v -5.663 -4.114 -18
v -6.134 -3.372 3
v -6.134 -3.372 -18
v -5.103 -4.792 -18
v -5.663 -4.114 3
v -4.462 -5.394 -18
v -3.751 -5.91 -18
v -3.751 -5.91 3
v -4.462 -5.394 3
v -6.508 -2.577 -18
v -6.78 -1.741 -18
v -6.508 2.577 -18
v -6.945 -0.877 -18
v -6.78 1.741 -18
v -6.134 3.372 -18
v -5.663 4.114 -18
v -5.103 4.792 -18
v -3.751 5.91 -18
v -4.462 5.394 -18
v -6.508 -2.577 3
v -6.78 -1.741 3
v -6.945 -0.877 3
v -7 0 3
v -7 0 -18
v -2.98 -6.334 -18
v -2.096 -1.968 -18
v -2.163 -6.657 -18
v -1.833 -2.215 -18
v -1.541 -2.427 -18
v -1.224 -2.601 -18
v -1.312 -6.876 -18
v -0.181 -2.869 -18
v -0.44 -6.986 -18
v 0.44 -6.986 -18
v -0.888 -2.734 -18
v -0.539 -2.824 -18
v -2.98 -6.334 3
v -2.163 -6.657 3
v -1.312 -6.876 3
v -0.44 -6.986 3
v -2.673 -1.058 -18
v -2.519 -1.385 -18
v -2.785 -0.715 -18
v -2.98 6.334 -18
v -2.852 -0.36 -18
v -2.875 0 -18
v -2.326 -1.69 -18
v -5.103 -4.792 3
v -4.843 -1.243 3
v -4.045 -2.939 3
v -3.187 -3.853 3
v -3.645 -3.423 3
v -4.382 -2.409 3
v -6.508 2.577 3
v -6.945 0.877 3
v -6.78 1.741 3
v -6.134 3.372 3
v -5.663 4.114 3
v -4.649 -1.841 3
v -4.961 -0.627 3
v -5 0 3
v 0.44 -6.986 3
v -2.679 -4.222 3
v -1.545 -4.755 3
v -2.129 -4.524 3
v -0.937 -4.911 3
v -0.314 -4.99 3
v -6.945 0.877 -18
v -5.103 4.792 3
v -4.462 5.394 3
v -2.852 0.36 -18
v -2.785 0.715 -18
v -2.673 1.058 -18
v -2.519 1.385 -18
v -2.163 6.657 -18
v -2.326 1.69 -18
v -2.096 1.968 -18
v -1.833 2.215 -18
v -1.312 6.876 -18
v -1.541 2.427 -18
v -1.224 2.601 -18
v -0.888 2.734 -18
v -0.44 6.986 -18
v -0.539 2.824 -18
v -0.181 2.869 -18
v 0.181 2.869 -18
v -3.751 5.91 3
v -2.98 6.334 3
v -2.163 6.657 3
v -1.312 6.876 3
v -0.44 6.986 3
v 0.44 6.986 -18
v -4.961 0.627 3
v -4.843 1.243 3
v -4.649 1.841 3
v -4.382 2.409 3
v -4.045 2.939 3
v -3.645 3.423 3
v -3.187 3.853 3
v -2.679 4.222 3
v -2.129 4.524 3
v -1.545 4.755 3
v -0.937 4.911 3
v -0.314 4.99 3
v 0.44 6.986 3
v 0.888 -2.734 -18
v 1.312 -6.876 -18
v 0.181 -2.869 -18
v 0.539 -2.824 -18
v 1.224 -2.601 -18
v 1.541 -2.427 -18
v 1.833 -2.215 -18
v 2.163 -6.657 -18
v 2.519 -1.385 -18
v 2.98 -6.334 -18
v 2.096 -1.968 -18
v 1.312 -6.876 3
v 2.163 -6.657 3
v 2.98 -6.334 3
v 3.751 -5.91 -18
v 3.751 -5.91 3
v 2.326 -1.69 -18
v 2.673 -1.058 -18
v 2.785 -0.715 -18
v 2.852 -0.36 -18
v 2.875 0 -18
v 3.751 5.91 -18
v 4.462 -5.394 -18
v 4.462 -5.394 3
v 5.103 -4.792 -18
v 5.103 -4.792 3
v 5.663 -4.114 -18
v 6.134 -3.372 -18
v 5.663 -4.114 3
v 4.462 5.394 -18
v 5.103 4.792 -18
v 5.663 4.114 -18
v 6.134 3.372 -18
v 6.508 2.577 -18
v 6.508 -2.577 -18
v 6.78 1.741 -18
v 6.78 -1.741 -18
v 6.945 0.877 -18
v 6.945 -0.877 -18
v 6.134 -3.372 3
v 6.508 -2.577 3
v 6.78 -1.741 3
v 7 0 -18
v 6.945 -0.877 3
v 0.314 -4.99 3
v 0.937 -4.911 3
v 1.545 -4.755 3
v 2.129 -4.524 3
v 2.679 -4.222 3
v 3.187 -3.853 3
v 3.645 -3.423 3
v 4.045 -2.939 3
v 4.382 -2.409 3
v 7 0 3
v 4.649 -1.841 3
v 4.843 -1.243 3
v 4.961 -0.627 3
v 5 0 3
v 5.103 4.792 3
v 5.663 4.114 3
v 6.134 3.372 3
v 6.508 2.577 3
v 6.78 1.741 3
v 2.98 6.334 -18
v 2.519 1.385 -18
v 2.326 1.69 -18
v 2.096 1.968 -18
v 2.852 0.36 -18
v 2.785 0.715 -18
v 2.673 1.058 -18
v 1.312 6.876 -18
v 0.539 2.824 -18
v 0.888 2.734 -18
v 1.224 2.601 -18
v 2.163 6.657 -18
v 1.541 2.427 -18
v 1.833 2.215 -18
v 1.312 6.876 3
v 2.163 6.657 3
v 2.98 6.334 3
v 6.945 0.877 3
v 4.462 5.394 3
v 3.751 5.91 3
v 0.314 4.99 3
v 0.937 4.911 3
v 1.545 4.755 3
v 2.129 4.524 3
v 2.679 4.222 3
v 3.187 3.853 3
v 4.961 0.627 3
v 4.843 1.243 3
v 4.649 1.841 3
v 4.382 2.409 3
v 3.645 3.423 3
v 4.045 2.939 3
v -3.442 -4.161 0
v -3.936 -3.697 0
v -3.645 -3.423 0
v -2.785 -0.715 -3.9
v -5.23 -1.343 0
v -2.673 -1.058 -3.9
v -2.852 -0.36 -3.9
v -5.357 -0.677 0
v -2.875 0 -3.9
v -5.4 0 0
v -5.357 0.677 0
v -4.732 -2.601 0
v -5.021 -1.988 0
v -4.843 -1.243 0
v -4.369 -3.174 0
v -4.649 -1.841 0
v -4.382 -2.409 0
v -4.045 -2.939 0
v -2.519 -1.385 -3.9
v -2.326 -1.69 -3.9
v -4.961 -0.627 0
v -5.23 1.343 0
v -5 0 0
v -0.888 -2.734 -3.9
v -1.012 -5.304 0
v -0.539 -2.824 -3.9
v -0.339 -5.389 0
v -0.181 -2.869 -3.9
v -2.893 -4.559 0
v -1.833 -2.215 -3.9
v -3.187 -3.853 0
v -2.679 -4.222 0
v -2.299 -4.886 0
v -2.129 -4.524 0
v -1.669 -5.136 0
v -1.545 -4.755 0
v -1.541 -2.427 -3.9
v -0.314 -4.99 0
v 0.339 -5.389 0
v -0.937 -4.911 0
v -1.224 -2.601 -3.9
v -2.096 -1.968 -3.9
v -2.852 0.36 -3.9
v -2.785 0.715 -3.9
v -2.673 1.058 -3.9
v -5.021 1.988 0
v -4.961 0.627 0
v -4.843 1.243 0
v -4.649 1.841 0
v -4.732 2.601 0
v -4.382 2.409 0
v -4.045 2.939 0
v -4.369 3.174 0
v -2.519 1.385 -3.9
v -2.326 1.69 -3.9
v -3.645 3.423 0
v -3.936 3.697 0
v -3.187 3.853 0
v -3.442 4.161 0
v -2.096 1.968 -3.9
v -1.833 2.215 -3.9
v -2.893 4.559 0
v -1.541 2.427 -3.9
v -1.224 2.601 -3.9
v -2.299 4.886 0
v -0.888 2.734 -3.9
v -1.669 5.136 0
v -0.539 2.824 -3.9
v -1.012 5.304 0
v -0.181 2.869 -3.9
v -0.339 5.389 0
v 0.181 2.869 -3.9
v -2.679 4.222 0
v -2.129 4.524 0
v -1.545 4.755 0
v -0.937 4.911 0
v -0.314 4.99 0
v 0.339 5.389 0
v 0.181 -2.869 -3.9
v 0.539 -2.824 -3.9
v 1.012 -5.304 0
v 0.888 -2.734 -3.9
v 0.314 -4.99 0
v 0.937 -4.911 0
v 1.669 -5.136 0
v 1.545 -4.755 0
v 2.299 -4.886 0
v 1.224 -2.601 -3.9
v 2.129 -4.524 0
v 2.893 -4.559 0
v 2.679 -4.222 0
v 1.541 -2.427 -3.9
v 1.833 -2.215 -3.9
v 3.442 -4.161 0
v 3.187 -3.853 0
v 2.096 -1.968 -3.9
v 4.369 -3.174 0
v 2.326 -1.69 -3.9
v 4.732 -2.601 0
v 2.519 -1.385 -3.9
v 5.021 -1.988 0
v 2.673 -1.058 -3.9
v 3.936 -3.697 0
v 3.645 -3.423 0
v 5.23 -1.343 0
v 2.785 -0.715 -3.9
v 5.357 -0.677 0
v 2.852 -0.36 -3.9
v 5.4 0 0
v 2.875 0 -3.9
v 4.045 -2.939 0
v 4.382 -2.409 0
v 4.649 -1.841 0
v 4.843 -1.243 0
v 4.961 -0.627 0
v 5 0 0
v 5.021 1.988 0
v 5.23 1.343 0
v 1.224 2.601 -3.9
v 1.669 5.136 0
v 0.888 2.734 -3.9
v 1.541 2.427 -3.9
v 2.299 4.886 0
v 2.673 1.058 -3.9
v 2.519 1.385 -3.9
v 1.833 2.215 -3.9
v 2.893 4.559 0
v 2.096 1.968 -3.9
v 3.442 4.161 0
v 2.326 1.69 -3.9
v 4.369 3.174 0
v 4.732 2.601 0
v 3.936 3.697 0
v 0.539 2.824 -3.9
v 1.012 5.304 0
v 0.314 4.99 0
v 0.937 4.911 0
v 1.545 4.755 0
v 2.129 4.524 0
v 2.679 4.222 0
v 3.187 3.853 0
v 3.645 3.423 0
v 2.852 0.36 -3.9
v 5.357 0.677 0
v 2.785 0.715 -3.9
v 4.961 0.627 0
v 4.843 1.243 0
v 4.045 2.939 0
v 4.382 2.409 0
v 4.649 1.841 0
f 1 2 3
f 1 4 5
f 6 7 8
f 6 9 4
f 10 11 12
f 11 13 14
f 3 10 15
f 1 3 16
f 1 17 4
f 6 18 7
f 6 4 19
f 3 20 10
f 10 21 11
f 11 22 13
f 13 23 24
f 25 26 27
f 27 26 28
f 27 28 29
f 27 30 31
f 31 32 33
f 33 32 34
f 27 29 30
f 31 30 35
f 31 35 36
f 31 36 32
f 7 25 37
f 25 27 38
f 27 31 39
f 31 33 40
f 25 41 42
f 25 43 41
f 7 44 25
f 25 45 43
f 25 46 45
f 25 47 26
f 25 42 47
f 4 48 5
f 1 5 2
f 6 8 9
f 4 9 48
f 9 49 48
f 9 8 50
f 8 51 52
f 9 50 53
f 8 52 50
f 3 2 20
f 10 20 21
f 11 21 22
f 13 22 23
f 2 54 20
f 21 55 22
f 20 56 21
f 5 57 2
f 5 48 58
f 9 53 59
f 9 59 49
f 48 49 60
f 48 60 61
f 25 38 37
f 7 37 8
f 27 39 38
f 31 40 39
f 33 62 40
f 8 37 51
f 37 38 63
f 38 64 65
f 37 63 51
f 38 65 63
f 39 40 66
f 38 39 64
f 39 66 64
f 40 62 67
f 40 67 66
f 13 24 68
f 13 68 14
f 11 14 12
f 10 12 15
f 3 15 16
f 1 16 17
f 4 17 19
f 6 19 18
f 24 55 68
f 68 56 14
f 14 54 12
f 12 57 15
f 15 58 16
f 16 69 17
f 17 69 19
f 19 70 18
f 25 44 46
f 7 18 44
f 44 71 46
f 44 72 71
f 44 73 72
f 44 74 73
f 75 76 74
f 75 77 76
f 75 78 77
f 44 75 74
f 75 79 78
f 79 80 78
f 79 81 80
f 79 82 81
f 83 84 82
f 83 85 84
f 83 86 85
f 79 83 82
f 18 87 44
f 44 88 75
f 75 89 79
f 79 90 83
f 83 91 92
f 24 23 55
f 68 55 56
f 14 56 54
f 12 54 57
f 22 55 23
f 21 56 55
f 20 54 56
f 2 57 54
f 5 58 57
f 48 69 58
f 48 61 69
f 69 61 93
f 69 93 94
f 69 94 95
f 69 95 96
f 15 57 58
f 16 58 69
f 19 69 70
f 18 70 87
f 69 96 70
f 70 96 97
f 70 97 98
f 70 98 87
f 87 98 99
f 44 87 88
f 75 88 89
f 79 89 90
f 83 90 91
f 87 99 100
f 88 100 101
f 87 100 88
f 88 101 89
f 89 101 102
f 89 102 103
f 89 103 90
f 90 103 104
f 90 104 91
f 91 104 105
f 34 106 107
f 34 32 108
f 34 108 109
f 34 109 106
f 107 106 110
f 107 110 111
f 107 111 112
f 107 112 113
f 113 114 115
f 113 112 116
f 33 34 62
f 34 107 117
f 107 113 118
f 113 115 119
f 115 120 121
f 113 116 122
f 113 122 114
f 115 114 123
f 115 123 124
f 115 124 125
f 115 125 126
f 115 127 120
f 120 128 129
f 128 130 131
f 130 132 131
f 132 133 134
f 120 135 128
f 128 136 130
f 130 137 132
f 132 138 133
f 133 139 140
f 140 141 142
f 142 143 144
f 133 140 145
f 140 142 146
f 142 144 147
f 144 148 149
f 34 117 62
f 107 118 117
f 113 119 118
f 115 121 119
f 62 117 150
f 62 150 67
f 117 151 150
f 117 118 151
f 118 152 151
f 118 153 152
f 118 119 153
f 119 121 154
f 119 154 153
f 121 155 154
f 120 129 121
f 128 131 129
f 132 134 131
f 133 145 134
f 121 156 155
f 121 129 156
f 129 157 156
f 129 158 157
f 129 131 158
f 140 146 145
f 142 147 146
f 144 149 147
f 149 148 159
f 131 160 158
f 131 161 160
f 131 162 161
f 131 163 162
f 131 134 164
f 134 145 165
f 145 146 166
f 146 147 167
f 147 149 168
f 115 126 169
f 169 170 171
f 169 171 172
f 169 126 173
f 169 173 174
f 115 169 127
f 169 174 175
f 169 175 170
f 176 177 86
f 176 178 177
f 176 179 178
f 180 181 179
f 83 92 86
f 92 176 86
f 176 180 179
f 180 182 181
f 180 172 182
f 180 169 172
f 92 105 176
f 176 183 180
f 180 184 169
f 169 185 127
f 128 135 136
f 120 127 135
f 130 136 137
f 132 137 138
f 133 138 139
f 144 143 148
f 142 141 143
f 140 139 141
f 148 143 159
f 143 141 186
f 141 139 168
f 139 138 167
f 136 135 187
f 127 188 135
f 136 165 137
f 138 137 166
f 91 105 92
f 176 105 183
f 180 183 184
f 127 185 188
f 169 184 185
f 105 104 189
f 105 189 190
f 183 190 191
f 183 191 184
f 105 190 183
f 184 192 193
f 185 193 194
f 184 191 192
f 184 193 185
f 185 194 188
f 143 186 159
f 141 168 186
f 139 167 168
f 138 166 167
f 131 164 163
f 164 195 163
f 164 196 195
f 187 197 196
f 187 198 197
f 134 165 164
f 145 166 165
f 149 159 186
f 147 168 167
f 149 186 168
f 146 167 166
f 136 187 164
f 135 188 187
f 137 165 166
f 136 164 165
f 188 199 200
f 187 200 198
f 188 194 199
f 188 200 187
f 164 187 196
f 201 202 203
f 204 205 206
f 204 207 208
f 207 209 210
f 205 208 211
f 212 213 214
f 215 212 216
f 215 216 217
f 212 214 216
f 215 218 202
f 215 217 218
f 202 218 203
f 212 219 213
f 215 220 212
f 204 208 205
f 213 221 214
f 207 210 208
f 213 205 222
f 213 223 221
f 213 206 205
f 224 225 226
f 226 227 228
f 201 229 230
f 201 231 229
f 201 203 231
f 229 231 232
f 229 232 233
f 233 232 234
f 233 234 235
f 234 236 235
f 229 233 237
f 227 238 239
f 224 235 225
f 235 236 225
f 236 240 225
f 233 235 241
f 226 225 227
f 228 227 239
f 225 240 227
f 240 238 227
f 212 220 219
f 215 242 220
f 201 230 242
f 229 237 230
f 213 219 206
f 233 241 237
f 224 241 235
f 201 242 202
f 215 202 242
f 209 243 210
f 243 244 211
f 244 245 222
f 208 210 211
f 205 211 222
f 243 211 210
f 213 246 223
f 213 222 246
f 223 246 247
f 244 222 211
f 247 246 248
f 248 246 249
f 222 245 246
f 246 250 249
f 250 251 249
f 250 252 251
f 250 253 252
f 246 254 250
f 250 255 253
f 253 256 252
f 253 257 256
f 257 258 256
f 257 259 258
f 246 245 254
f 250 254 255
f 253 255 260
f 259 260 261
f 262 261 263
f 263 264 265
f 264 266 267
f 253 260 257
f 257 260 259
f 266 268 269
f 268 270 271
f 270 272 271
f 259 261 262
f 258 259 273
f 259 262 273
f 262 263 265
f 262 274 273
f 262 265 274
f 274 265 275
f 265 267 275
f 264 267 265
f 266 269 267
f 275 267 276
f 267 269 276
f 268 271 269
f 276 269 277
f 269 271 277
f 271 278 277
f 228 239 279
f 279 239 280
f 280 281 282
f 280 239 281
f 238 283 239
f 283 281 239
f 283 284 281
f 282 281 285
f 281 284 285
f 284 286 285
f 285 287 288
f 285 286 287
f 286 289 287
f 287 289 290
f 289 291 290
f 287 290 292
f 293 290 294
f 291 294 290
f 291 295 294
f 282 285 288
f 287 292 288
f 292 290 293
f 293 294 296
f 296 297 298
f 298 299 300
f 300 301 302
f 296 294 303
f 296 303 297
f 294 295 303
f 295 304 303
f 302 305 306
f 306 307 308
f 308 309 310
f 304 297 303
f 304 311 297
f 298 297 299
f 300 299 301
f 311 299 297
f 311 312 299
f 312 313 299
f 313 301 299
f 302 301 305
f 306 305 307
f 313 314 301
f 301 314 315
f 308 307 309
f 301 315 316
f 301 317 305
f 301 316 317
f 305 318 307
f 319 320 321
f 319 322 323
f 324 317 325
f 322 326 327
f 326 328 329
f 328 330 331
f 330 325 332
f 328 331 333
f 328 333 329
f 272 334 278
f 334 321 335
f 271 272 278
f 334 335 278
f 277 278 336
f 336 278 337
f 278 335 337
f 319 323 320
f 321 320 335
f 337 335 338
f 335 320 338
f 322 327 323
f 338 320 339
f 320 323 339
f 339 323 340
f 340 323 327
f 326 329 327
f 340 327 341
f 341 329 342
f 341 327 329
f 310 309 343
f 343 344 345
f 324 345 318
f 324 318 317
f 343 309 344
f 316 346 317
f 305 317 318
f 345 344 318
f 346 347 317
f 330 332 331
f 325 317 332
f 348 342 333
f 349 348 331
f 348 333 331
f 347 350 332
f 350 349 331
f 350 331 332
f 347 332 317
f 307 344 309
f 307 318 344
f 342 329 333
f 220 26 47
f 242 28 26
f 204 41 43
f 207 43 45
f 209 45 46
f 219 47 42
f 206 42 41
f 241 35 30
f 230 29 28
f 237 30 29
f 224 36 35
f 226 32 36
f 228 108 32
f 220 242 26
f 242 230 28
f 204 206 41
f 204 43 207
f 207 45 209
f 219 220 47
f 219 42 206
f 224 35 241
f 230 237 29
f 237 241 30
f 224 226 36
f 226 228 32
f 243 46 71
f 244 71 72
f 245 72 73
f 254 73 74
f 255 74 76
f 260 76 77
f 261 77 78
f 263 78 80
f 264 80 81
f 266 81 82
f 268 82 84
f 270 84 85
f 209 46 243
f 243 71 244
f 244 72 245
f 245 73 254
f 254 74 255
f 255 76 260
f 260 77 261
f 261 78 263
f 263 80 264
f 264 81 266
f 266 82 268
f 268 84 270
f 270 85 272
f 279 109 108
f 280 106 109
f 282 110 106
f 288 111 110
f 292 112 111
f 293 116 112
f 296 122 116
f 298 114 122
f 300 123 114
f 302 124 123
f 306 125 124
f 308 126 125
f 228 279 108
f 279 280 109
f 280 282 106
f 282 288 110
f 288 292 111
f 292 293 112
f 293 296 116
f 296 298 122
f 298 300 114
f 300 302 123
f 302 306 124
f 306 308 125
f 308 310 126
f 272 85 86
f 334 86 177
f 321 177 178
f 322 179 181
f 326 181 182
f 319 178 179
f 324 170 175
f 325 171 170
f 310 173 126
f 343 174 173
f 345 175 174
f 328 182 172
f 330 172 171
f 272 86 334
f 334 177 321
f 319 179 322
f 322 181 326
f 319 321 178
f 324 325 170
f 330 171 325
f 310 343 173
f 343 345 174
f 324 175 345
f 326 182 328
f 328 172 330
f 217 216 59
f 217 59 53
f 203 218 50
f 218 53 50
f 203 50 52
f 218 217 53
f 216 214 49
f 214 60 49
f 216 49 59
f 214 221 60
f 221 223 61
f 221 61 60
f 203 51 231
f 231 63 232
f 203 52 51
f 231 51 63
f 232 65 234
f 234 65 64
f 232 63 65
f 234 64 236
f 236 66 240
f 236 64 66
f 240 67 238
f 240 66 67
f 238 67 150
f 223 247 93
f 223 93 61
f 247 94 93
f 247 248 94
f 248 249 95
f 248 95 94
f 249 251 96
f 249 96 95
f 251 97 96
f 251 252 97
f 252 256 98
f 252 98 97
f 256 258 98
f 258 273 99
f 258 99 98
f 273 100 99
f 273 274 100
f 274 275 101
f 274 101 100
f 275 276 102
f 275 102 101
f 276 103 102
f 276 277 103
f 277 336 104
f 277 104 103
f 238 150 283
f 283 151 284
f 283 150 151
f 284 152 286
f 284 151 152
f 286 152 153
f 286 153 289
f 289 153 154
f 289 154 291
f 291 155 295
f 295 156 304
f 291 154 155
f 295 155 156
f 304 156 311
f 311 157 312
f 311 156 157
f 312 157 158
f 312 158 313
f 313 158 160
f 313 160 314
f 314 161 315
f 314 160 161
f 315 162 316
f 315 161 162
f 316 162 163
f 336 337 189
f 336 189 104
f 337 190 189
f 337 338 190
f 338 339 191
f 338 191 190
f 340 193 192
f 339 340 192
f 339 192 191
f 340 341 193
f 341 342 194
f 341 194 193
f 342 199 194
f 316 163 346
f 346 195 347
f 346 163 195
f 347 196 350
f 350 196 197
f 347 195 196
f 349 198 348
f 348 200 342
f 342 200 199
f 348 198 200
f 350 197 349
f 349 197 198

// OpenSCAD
$fn = 50;

difference() {
	union() {
		translate(v = [0, 0, -18.0]) {
			cylinder(h = 21, r = 7.0);
		}
		#translate(v = [0, 0, -21.0]) {
			cylinder(h = 21, r = 2.875);
		}
	}
	union() {
		translate(v = [0, 0, 0]) {
			rotate(a = [0, 0, 0]) {
				difference() {
					union() {
						translate(v = [0, 0, -21.0]) {
							cylinder(h = 21, r = 2.6);
						}
						translate(v = [0, 0, -3.9]) {
							cylinder(h = 3.9, r1 = 2.875, r2 = 5.4);
						}
						translate(v = [0, 0, -21.0]) {
							cylinder(h = 21, r = 2.875);
						}
						translate(v = [0, 0, -21.0]) {
							cylinder(h = 21, r = 2.6);
						}
					}
					union();
				}
			}
		}
		#cylinder(h = 3, r = 5.0);
	}
}
